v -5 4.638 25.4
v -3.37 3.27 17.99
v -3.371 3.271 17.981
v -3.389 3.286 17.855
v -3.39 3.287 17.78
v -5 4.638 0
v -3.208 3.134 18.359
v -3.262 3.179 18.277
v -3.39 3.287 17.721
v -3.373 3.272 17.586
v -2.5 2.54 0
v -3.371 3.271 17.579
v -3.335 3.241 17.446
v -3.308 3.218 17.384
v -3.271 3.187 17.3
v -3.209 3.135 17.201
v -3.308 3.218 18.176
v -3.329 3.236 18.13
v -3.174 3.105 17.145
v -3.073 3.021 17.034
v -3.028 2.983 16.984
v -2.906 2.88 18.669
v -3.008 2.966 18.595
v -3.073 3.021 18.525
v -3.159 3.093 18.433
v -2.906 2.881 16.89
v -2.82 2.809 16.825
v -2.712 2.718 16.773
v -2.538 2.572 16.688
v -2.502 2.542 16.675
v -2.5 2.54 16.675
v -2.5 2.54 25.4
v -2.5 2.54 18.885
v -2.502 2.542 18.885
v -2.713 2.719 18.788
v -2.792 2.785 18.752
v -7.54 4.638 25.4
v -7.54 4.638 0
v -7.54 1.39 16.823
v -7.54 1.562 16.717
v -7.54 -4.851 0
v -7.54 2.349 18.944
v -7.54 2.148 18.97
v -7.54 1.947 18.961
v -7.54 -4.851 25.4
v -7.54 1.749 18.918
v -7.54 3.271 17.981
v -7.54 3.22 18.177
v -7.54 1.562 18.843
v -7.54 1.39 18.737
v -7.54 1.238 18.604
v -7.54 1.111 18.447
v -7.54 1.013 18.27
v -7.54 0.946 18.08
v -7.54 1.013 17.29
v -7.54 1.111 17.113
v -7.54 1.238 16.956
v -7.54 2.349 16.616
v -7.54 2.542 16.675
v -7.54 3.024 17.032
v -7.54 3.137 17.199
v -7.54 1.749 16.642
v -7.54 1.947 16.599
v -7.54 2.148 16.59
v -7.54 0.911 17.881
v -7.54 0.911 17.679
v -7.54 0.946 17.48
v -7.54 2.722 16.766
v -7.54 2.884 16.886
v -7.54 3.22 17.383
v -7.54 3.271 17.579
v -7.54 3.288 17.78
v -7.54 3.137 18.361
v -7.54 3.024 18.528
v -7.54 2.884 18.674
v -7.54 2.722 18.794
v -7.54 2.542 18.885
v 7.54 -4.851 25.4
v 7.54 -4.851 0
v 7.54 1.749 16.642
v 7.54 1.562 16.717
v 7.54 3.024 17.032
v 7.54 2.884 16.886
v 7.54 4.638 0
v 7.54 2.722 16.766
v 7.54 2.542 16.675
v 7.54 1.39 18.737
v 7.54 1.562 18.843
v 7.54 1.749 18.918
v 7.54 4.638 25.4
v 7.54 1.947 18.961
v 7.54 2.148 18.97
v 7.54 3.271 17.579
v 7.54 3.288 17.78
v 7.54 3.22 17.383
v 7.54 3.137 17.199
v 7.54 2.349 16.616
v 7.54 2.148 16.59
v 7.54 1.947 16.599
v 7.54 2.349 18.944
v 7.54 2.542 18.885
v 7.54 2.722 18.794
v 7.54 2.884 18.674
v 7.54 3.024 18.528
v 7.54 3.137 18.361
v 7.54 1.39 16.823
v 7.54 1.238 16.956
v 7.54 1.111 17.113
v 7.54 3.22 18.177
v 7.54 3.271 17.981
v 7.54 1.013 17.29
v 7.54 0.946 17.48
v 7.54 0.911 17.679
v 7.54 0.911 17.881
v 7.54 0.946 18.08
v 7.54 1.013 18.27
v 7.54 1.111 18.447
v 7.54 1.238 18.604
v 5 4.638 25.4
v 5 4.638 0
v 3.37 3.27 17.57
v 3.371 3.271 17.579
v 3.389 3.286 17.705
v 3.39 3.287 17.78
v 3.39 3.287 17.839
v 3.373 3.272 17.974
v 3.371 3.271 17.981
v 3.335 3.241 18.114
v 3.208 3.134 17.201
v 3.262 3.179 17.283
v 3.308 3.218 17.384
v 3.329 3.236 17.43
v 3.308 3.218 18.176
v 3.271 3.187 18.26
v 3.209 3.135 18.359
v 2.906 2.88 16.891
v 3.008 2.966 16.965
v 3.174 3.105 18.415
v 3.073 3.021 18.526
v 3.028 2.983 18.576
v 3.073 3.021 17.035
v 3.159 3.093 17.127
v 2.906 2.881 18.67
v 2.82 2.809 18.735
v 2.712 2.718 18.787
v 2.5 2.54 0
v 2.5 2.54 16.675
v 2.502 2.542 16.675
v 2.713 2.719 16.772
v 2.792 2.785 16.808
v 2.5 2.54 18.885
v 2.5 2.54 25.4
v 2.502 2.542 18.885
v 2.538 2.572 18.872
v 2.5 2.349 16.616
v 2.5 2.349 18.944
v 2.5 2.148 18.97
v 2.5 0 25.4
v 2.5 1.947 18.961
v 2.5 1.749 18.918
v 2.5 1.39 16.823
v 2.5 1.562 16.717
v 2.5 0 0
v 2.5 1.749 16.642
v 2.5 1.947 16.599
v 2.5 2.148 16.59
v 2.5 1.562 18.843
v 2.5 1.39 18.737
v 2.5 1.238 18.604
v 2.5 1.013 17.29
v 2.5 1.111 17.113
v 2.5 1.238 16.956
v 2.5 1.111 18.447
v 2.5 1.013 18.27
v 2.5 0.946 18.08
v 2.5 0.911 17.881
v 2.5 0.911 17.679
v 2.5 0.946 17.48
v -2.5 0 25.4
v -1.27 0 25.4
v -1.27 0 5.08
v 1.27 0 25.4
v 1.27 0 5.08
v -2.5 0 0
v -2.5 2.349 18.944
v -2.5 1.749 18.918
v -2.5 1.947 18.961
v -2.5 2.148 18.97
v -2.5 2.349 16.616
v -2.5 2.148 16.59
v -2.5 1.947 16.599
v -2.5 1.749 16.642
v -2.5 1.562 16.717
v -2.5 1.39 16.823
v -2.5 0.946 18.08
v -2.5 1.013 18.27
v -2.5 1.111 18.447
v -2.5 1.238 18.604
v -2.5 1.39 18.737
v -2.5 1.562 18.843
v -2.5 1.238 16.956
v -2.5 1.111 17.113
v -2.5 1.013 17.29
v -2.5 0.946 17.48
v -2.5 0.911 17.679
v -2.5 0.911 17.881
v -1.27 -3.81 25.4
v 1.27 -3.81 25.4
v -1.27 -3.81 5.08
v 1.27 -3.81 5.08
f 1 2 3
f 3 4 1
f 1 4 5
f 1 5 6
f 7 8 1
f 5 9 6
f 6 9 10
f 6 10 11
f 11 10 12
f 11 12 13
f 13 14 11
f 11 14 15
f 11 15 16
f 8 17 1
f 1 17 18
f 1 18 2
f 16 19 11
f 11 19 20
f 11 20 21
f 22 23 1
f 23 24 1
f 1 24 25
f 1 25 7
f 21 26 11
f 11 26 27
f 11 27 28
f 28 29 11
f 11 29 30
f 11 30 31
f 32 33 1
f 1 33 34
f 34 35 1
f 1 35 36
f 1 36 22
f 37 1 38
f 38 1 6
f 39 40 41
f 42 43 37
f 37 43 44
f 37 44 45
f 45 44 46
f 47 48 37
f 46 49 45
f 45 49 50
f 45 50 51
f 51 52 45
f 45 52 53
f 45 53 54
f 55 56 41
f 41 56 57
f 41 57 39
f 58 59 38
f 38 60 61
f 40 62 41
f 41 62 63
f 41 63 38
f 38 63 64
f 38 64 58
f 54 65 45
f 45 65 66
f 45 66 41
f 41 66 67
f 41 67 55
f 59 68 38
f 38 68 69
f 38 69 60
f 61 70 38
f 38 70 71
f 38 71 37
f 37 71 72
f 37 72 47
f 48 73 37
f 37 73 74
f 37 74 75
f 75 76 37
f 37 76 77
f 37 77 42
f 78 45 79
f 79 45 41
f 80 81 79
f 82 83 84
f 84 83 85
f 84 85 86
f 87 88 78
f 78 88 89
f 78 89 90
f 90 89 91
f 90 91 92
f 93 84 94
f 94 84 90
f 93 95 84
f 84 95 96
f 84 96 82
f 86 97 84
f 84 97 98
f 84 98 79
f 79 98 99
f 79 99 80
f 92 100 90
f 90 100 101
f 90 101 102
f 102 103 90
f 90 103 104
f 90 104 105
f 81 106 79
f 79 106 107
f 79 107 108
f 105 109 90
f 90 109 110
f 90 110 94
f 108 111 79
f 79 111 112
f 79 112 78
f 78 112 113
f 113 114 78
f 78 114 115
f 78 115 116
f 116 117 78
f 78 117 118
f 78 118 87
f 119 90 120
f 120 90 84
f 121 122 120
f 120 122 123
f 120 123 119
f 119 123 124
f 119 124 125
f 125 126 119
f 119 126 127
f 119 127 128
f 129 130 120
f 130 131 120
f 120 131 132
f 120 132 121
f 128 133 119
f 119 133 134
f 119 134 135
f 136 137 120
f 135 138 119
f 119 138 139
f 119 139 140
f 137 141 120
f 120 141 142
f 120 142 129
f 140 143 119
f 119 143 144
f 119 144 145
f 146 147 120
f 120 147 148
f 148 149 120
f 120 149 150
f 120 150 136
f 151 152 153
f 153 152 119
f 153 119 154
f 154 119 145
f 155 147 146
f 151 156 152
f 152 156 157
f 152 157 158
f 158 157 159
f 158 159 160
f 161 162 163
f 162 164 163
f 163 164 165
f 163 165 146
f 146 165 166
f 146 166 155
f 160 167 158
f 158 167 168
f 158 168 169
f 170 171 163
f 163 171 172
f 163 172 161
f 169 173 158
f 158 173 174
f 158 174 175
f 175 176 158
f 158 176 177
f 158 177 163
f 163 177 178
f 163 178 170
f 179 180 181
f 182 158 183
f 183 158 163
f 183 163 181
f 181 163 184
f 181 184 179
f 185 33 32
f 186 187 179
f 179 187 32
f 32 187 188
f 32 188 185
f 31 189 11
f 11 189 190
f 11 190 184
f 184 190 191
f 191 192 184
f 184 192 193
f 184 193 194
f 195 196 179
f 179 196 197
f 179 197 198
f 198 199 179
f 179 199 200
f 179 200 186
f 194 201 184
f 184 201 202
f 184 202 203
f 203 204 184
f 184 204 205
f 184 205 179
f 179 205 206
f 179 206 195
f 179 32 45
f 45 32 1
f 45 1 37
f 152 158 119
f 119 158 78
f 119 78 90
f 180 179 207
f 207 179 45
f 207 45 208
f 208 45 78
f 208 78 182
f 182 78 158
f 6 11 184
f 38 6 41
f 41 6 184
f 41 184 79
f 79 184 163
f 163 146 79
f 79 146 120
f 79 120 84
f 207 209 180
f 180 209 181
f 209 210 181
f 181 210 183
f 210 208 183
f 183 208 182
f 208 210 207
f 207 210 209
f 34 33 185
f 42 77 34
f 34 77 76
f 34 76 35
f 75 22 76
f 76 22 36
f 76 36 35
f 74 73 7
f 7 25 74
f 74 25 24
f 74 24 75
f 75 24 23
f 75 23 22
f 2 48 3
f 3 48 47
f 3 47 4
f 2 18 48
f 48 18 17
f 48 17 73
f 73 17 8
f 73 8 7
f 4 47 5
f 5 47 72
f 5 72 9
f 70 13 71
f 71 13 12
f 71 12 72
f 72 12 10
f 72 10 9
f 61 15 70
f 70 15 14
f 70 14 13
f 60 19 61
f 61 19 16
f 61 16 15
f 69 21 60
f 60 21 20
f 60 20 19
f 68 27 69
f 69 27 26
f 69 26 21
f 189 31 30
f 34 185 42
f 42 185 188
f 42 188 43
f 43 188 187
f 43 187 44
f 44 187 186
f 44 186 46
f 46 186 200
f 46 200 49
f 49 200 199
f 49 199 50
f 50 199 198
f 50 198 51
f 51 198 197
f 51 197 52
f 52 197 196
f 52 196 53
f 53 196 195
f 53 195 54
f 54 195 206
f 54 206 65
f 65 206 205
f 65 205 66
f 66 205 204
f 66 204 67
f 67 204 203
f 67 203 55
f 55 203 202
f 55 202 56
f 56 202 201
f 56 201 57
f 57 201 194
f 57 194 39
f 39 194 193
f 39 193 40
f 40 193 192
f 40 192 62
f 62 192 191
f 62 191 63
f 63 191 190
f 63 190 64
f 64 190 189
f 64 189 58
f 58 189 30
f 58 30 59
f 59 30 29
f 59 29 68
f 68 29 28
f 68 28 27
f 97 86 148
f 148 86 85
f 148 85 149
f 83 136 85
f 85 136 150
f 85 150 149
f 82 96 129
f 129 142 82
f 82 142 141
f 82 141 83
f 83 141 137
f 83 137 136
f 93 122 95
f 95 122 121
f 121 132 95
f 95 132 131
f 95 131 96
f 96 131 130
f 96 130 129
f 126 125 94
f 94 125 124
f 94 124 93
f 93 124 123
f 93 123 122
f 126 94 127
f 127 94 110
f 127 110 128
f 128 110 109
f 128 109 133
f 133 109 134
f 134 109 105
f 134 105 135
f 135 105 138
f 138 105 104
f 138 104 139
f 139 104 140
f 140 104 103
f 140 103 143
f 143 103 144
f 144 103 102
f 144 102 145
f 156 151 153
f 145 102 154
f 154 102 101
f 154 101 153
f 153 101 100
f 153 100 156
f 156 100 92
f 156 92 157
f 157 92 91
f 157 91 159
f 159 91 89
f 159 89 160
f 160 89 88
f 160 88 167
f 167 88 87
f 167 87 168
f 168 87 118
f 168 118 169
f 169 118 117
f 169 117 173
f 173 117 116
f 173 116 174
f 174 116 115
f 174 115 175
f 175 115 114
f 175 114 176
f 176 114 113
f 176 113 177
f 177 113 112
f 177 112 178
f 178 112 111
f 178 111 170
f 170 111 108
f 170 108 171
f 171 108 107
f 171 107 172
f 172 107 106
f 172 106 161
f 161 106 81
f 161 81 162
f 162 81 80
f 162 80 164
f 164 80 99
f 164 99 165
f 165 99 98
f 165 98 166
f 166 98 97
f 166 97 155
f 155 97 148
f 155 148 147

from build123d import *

# Parameters (mm, degrees)
BOSS_EXTRUDE2_DEPTH = 25.4
SKETCH3_W           = 2.54
SKETCH3_H           = 20.32
CUT_EXTRUDE1_DEPTH  = 3.81
SKETCH4_R           = 1.190625
CUT_EXTRUDE2_DEPTH  = 30.934976745


with BuildPart() as part:
    # Sketch2 → Boss-Extrude2 (new body)
    with BuildSketch(Plane.XY):
        Polygon((-5, 4.637749078), (-7.54, 4.637749078), (-7.54, -4.851436151), (7.54, -4.851436151), (7.54, 4.637749078), (5, 4.637749078), (2.5, 2.54), (2.5, 0), (-2.5, 0), (-2.5, 2.54), align=None)
    extrude(amount=BOSS_EXTRUDE2_DEPTH)

    # Sketch3 → Cut-Extrude1 (cut)
    with BuildSketch(Plane(origin=(0, 0, 0), x_dir=(1, 0, 0), z_dir=(0, 1, 0))):
        with Locations((0, -15.24)):
            Rectangle(SKETCH3_W, SKETCH3_H)
    extrude(amount=-CUT_EXTRUDE1_DEPTH, mode=Mode.SUBTRACT)

    # Sketch4 → Cut-Extrude2 (cut, through all)
    with BuildSketch(Plane(origin=(7.54, 0, 0), x_dir=(0, 0, -1), z_dir=(1, 0, 0))):
        with Locations(Location((-17.78, 2.097749078, 0), (0, 0, 90))):
            Circle(SKETCH4_R)
    extrude(amount=-CUT_EXTRUDE2_DEPTH, mode=Mode.SUBTRACT)


solid = part.part
